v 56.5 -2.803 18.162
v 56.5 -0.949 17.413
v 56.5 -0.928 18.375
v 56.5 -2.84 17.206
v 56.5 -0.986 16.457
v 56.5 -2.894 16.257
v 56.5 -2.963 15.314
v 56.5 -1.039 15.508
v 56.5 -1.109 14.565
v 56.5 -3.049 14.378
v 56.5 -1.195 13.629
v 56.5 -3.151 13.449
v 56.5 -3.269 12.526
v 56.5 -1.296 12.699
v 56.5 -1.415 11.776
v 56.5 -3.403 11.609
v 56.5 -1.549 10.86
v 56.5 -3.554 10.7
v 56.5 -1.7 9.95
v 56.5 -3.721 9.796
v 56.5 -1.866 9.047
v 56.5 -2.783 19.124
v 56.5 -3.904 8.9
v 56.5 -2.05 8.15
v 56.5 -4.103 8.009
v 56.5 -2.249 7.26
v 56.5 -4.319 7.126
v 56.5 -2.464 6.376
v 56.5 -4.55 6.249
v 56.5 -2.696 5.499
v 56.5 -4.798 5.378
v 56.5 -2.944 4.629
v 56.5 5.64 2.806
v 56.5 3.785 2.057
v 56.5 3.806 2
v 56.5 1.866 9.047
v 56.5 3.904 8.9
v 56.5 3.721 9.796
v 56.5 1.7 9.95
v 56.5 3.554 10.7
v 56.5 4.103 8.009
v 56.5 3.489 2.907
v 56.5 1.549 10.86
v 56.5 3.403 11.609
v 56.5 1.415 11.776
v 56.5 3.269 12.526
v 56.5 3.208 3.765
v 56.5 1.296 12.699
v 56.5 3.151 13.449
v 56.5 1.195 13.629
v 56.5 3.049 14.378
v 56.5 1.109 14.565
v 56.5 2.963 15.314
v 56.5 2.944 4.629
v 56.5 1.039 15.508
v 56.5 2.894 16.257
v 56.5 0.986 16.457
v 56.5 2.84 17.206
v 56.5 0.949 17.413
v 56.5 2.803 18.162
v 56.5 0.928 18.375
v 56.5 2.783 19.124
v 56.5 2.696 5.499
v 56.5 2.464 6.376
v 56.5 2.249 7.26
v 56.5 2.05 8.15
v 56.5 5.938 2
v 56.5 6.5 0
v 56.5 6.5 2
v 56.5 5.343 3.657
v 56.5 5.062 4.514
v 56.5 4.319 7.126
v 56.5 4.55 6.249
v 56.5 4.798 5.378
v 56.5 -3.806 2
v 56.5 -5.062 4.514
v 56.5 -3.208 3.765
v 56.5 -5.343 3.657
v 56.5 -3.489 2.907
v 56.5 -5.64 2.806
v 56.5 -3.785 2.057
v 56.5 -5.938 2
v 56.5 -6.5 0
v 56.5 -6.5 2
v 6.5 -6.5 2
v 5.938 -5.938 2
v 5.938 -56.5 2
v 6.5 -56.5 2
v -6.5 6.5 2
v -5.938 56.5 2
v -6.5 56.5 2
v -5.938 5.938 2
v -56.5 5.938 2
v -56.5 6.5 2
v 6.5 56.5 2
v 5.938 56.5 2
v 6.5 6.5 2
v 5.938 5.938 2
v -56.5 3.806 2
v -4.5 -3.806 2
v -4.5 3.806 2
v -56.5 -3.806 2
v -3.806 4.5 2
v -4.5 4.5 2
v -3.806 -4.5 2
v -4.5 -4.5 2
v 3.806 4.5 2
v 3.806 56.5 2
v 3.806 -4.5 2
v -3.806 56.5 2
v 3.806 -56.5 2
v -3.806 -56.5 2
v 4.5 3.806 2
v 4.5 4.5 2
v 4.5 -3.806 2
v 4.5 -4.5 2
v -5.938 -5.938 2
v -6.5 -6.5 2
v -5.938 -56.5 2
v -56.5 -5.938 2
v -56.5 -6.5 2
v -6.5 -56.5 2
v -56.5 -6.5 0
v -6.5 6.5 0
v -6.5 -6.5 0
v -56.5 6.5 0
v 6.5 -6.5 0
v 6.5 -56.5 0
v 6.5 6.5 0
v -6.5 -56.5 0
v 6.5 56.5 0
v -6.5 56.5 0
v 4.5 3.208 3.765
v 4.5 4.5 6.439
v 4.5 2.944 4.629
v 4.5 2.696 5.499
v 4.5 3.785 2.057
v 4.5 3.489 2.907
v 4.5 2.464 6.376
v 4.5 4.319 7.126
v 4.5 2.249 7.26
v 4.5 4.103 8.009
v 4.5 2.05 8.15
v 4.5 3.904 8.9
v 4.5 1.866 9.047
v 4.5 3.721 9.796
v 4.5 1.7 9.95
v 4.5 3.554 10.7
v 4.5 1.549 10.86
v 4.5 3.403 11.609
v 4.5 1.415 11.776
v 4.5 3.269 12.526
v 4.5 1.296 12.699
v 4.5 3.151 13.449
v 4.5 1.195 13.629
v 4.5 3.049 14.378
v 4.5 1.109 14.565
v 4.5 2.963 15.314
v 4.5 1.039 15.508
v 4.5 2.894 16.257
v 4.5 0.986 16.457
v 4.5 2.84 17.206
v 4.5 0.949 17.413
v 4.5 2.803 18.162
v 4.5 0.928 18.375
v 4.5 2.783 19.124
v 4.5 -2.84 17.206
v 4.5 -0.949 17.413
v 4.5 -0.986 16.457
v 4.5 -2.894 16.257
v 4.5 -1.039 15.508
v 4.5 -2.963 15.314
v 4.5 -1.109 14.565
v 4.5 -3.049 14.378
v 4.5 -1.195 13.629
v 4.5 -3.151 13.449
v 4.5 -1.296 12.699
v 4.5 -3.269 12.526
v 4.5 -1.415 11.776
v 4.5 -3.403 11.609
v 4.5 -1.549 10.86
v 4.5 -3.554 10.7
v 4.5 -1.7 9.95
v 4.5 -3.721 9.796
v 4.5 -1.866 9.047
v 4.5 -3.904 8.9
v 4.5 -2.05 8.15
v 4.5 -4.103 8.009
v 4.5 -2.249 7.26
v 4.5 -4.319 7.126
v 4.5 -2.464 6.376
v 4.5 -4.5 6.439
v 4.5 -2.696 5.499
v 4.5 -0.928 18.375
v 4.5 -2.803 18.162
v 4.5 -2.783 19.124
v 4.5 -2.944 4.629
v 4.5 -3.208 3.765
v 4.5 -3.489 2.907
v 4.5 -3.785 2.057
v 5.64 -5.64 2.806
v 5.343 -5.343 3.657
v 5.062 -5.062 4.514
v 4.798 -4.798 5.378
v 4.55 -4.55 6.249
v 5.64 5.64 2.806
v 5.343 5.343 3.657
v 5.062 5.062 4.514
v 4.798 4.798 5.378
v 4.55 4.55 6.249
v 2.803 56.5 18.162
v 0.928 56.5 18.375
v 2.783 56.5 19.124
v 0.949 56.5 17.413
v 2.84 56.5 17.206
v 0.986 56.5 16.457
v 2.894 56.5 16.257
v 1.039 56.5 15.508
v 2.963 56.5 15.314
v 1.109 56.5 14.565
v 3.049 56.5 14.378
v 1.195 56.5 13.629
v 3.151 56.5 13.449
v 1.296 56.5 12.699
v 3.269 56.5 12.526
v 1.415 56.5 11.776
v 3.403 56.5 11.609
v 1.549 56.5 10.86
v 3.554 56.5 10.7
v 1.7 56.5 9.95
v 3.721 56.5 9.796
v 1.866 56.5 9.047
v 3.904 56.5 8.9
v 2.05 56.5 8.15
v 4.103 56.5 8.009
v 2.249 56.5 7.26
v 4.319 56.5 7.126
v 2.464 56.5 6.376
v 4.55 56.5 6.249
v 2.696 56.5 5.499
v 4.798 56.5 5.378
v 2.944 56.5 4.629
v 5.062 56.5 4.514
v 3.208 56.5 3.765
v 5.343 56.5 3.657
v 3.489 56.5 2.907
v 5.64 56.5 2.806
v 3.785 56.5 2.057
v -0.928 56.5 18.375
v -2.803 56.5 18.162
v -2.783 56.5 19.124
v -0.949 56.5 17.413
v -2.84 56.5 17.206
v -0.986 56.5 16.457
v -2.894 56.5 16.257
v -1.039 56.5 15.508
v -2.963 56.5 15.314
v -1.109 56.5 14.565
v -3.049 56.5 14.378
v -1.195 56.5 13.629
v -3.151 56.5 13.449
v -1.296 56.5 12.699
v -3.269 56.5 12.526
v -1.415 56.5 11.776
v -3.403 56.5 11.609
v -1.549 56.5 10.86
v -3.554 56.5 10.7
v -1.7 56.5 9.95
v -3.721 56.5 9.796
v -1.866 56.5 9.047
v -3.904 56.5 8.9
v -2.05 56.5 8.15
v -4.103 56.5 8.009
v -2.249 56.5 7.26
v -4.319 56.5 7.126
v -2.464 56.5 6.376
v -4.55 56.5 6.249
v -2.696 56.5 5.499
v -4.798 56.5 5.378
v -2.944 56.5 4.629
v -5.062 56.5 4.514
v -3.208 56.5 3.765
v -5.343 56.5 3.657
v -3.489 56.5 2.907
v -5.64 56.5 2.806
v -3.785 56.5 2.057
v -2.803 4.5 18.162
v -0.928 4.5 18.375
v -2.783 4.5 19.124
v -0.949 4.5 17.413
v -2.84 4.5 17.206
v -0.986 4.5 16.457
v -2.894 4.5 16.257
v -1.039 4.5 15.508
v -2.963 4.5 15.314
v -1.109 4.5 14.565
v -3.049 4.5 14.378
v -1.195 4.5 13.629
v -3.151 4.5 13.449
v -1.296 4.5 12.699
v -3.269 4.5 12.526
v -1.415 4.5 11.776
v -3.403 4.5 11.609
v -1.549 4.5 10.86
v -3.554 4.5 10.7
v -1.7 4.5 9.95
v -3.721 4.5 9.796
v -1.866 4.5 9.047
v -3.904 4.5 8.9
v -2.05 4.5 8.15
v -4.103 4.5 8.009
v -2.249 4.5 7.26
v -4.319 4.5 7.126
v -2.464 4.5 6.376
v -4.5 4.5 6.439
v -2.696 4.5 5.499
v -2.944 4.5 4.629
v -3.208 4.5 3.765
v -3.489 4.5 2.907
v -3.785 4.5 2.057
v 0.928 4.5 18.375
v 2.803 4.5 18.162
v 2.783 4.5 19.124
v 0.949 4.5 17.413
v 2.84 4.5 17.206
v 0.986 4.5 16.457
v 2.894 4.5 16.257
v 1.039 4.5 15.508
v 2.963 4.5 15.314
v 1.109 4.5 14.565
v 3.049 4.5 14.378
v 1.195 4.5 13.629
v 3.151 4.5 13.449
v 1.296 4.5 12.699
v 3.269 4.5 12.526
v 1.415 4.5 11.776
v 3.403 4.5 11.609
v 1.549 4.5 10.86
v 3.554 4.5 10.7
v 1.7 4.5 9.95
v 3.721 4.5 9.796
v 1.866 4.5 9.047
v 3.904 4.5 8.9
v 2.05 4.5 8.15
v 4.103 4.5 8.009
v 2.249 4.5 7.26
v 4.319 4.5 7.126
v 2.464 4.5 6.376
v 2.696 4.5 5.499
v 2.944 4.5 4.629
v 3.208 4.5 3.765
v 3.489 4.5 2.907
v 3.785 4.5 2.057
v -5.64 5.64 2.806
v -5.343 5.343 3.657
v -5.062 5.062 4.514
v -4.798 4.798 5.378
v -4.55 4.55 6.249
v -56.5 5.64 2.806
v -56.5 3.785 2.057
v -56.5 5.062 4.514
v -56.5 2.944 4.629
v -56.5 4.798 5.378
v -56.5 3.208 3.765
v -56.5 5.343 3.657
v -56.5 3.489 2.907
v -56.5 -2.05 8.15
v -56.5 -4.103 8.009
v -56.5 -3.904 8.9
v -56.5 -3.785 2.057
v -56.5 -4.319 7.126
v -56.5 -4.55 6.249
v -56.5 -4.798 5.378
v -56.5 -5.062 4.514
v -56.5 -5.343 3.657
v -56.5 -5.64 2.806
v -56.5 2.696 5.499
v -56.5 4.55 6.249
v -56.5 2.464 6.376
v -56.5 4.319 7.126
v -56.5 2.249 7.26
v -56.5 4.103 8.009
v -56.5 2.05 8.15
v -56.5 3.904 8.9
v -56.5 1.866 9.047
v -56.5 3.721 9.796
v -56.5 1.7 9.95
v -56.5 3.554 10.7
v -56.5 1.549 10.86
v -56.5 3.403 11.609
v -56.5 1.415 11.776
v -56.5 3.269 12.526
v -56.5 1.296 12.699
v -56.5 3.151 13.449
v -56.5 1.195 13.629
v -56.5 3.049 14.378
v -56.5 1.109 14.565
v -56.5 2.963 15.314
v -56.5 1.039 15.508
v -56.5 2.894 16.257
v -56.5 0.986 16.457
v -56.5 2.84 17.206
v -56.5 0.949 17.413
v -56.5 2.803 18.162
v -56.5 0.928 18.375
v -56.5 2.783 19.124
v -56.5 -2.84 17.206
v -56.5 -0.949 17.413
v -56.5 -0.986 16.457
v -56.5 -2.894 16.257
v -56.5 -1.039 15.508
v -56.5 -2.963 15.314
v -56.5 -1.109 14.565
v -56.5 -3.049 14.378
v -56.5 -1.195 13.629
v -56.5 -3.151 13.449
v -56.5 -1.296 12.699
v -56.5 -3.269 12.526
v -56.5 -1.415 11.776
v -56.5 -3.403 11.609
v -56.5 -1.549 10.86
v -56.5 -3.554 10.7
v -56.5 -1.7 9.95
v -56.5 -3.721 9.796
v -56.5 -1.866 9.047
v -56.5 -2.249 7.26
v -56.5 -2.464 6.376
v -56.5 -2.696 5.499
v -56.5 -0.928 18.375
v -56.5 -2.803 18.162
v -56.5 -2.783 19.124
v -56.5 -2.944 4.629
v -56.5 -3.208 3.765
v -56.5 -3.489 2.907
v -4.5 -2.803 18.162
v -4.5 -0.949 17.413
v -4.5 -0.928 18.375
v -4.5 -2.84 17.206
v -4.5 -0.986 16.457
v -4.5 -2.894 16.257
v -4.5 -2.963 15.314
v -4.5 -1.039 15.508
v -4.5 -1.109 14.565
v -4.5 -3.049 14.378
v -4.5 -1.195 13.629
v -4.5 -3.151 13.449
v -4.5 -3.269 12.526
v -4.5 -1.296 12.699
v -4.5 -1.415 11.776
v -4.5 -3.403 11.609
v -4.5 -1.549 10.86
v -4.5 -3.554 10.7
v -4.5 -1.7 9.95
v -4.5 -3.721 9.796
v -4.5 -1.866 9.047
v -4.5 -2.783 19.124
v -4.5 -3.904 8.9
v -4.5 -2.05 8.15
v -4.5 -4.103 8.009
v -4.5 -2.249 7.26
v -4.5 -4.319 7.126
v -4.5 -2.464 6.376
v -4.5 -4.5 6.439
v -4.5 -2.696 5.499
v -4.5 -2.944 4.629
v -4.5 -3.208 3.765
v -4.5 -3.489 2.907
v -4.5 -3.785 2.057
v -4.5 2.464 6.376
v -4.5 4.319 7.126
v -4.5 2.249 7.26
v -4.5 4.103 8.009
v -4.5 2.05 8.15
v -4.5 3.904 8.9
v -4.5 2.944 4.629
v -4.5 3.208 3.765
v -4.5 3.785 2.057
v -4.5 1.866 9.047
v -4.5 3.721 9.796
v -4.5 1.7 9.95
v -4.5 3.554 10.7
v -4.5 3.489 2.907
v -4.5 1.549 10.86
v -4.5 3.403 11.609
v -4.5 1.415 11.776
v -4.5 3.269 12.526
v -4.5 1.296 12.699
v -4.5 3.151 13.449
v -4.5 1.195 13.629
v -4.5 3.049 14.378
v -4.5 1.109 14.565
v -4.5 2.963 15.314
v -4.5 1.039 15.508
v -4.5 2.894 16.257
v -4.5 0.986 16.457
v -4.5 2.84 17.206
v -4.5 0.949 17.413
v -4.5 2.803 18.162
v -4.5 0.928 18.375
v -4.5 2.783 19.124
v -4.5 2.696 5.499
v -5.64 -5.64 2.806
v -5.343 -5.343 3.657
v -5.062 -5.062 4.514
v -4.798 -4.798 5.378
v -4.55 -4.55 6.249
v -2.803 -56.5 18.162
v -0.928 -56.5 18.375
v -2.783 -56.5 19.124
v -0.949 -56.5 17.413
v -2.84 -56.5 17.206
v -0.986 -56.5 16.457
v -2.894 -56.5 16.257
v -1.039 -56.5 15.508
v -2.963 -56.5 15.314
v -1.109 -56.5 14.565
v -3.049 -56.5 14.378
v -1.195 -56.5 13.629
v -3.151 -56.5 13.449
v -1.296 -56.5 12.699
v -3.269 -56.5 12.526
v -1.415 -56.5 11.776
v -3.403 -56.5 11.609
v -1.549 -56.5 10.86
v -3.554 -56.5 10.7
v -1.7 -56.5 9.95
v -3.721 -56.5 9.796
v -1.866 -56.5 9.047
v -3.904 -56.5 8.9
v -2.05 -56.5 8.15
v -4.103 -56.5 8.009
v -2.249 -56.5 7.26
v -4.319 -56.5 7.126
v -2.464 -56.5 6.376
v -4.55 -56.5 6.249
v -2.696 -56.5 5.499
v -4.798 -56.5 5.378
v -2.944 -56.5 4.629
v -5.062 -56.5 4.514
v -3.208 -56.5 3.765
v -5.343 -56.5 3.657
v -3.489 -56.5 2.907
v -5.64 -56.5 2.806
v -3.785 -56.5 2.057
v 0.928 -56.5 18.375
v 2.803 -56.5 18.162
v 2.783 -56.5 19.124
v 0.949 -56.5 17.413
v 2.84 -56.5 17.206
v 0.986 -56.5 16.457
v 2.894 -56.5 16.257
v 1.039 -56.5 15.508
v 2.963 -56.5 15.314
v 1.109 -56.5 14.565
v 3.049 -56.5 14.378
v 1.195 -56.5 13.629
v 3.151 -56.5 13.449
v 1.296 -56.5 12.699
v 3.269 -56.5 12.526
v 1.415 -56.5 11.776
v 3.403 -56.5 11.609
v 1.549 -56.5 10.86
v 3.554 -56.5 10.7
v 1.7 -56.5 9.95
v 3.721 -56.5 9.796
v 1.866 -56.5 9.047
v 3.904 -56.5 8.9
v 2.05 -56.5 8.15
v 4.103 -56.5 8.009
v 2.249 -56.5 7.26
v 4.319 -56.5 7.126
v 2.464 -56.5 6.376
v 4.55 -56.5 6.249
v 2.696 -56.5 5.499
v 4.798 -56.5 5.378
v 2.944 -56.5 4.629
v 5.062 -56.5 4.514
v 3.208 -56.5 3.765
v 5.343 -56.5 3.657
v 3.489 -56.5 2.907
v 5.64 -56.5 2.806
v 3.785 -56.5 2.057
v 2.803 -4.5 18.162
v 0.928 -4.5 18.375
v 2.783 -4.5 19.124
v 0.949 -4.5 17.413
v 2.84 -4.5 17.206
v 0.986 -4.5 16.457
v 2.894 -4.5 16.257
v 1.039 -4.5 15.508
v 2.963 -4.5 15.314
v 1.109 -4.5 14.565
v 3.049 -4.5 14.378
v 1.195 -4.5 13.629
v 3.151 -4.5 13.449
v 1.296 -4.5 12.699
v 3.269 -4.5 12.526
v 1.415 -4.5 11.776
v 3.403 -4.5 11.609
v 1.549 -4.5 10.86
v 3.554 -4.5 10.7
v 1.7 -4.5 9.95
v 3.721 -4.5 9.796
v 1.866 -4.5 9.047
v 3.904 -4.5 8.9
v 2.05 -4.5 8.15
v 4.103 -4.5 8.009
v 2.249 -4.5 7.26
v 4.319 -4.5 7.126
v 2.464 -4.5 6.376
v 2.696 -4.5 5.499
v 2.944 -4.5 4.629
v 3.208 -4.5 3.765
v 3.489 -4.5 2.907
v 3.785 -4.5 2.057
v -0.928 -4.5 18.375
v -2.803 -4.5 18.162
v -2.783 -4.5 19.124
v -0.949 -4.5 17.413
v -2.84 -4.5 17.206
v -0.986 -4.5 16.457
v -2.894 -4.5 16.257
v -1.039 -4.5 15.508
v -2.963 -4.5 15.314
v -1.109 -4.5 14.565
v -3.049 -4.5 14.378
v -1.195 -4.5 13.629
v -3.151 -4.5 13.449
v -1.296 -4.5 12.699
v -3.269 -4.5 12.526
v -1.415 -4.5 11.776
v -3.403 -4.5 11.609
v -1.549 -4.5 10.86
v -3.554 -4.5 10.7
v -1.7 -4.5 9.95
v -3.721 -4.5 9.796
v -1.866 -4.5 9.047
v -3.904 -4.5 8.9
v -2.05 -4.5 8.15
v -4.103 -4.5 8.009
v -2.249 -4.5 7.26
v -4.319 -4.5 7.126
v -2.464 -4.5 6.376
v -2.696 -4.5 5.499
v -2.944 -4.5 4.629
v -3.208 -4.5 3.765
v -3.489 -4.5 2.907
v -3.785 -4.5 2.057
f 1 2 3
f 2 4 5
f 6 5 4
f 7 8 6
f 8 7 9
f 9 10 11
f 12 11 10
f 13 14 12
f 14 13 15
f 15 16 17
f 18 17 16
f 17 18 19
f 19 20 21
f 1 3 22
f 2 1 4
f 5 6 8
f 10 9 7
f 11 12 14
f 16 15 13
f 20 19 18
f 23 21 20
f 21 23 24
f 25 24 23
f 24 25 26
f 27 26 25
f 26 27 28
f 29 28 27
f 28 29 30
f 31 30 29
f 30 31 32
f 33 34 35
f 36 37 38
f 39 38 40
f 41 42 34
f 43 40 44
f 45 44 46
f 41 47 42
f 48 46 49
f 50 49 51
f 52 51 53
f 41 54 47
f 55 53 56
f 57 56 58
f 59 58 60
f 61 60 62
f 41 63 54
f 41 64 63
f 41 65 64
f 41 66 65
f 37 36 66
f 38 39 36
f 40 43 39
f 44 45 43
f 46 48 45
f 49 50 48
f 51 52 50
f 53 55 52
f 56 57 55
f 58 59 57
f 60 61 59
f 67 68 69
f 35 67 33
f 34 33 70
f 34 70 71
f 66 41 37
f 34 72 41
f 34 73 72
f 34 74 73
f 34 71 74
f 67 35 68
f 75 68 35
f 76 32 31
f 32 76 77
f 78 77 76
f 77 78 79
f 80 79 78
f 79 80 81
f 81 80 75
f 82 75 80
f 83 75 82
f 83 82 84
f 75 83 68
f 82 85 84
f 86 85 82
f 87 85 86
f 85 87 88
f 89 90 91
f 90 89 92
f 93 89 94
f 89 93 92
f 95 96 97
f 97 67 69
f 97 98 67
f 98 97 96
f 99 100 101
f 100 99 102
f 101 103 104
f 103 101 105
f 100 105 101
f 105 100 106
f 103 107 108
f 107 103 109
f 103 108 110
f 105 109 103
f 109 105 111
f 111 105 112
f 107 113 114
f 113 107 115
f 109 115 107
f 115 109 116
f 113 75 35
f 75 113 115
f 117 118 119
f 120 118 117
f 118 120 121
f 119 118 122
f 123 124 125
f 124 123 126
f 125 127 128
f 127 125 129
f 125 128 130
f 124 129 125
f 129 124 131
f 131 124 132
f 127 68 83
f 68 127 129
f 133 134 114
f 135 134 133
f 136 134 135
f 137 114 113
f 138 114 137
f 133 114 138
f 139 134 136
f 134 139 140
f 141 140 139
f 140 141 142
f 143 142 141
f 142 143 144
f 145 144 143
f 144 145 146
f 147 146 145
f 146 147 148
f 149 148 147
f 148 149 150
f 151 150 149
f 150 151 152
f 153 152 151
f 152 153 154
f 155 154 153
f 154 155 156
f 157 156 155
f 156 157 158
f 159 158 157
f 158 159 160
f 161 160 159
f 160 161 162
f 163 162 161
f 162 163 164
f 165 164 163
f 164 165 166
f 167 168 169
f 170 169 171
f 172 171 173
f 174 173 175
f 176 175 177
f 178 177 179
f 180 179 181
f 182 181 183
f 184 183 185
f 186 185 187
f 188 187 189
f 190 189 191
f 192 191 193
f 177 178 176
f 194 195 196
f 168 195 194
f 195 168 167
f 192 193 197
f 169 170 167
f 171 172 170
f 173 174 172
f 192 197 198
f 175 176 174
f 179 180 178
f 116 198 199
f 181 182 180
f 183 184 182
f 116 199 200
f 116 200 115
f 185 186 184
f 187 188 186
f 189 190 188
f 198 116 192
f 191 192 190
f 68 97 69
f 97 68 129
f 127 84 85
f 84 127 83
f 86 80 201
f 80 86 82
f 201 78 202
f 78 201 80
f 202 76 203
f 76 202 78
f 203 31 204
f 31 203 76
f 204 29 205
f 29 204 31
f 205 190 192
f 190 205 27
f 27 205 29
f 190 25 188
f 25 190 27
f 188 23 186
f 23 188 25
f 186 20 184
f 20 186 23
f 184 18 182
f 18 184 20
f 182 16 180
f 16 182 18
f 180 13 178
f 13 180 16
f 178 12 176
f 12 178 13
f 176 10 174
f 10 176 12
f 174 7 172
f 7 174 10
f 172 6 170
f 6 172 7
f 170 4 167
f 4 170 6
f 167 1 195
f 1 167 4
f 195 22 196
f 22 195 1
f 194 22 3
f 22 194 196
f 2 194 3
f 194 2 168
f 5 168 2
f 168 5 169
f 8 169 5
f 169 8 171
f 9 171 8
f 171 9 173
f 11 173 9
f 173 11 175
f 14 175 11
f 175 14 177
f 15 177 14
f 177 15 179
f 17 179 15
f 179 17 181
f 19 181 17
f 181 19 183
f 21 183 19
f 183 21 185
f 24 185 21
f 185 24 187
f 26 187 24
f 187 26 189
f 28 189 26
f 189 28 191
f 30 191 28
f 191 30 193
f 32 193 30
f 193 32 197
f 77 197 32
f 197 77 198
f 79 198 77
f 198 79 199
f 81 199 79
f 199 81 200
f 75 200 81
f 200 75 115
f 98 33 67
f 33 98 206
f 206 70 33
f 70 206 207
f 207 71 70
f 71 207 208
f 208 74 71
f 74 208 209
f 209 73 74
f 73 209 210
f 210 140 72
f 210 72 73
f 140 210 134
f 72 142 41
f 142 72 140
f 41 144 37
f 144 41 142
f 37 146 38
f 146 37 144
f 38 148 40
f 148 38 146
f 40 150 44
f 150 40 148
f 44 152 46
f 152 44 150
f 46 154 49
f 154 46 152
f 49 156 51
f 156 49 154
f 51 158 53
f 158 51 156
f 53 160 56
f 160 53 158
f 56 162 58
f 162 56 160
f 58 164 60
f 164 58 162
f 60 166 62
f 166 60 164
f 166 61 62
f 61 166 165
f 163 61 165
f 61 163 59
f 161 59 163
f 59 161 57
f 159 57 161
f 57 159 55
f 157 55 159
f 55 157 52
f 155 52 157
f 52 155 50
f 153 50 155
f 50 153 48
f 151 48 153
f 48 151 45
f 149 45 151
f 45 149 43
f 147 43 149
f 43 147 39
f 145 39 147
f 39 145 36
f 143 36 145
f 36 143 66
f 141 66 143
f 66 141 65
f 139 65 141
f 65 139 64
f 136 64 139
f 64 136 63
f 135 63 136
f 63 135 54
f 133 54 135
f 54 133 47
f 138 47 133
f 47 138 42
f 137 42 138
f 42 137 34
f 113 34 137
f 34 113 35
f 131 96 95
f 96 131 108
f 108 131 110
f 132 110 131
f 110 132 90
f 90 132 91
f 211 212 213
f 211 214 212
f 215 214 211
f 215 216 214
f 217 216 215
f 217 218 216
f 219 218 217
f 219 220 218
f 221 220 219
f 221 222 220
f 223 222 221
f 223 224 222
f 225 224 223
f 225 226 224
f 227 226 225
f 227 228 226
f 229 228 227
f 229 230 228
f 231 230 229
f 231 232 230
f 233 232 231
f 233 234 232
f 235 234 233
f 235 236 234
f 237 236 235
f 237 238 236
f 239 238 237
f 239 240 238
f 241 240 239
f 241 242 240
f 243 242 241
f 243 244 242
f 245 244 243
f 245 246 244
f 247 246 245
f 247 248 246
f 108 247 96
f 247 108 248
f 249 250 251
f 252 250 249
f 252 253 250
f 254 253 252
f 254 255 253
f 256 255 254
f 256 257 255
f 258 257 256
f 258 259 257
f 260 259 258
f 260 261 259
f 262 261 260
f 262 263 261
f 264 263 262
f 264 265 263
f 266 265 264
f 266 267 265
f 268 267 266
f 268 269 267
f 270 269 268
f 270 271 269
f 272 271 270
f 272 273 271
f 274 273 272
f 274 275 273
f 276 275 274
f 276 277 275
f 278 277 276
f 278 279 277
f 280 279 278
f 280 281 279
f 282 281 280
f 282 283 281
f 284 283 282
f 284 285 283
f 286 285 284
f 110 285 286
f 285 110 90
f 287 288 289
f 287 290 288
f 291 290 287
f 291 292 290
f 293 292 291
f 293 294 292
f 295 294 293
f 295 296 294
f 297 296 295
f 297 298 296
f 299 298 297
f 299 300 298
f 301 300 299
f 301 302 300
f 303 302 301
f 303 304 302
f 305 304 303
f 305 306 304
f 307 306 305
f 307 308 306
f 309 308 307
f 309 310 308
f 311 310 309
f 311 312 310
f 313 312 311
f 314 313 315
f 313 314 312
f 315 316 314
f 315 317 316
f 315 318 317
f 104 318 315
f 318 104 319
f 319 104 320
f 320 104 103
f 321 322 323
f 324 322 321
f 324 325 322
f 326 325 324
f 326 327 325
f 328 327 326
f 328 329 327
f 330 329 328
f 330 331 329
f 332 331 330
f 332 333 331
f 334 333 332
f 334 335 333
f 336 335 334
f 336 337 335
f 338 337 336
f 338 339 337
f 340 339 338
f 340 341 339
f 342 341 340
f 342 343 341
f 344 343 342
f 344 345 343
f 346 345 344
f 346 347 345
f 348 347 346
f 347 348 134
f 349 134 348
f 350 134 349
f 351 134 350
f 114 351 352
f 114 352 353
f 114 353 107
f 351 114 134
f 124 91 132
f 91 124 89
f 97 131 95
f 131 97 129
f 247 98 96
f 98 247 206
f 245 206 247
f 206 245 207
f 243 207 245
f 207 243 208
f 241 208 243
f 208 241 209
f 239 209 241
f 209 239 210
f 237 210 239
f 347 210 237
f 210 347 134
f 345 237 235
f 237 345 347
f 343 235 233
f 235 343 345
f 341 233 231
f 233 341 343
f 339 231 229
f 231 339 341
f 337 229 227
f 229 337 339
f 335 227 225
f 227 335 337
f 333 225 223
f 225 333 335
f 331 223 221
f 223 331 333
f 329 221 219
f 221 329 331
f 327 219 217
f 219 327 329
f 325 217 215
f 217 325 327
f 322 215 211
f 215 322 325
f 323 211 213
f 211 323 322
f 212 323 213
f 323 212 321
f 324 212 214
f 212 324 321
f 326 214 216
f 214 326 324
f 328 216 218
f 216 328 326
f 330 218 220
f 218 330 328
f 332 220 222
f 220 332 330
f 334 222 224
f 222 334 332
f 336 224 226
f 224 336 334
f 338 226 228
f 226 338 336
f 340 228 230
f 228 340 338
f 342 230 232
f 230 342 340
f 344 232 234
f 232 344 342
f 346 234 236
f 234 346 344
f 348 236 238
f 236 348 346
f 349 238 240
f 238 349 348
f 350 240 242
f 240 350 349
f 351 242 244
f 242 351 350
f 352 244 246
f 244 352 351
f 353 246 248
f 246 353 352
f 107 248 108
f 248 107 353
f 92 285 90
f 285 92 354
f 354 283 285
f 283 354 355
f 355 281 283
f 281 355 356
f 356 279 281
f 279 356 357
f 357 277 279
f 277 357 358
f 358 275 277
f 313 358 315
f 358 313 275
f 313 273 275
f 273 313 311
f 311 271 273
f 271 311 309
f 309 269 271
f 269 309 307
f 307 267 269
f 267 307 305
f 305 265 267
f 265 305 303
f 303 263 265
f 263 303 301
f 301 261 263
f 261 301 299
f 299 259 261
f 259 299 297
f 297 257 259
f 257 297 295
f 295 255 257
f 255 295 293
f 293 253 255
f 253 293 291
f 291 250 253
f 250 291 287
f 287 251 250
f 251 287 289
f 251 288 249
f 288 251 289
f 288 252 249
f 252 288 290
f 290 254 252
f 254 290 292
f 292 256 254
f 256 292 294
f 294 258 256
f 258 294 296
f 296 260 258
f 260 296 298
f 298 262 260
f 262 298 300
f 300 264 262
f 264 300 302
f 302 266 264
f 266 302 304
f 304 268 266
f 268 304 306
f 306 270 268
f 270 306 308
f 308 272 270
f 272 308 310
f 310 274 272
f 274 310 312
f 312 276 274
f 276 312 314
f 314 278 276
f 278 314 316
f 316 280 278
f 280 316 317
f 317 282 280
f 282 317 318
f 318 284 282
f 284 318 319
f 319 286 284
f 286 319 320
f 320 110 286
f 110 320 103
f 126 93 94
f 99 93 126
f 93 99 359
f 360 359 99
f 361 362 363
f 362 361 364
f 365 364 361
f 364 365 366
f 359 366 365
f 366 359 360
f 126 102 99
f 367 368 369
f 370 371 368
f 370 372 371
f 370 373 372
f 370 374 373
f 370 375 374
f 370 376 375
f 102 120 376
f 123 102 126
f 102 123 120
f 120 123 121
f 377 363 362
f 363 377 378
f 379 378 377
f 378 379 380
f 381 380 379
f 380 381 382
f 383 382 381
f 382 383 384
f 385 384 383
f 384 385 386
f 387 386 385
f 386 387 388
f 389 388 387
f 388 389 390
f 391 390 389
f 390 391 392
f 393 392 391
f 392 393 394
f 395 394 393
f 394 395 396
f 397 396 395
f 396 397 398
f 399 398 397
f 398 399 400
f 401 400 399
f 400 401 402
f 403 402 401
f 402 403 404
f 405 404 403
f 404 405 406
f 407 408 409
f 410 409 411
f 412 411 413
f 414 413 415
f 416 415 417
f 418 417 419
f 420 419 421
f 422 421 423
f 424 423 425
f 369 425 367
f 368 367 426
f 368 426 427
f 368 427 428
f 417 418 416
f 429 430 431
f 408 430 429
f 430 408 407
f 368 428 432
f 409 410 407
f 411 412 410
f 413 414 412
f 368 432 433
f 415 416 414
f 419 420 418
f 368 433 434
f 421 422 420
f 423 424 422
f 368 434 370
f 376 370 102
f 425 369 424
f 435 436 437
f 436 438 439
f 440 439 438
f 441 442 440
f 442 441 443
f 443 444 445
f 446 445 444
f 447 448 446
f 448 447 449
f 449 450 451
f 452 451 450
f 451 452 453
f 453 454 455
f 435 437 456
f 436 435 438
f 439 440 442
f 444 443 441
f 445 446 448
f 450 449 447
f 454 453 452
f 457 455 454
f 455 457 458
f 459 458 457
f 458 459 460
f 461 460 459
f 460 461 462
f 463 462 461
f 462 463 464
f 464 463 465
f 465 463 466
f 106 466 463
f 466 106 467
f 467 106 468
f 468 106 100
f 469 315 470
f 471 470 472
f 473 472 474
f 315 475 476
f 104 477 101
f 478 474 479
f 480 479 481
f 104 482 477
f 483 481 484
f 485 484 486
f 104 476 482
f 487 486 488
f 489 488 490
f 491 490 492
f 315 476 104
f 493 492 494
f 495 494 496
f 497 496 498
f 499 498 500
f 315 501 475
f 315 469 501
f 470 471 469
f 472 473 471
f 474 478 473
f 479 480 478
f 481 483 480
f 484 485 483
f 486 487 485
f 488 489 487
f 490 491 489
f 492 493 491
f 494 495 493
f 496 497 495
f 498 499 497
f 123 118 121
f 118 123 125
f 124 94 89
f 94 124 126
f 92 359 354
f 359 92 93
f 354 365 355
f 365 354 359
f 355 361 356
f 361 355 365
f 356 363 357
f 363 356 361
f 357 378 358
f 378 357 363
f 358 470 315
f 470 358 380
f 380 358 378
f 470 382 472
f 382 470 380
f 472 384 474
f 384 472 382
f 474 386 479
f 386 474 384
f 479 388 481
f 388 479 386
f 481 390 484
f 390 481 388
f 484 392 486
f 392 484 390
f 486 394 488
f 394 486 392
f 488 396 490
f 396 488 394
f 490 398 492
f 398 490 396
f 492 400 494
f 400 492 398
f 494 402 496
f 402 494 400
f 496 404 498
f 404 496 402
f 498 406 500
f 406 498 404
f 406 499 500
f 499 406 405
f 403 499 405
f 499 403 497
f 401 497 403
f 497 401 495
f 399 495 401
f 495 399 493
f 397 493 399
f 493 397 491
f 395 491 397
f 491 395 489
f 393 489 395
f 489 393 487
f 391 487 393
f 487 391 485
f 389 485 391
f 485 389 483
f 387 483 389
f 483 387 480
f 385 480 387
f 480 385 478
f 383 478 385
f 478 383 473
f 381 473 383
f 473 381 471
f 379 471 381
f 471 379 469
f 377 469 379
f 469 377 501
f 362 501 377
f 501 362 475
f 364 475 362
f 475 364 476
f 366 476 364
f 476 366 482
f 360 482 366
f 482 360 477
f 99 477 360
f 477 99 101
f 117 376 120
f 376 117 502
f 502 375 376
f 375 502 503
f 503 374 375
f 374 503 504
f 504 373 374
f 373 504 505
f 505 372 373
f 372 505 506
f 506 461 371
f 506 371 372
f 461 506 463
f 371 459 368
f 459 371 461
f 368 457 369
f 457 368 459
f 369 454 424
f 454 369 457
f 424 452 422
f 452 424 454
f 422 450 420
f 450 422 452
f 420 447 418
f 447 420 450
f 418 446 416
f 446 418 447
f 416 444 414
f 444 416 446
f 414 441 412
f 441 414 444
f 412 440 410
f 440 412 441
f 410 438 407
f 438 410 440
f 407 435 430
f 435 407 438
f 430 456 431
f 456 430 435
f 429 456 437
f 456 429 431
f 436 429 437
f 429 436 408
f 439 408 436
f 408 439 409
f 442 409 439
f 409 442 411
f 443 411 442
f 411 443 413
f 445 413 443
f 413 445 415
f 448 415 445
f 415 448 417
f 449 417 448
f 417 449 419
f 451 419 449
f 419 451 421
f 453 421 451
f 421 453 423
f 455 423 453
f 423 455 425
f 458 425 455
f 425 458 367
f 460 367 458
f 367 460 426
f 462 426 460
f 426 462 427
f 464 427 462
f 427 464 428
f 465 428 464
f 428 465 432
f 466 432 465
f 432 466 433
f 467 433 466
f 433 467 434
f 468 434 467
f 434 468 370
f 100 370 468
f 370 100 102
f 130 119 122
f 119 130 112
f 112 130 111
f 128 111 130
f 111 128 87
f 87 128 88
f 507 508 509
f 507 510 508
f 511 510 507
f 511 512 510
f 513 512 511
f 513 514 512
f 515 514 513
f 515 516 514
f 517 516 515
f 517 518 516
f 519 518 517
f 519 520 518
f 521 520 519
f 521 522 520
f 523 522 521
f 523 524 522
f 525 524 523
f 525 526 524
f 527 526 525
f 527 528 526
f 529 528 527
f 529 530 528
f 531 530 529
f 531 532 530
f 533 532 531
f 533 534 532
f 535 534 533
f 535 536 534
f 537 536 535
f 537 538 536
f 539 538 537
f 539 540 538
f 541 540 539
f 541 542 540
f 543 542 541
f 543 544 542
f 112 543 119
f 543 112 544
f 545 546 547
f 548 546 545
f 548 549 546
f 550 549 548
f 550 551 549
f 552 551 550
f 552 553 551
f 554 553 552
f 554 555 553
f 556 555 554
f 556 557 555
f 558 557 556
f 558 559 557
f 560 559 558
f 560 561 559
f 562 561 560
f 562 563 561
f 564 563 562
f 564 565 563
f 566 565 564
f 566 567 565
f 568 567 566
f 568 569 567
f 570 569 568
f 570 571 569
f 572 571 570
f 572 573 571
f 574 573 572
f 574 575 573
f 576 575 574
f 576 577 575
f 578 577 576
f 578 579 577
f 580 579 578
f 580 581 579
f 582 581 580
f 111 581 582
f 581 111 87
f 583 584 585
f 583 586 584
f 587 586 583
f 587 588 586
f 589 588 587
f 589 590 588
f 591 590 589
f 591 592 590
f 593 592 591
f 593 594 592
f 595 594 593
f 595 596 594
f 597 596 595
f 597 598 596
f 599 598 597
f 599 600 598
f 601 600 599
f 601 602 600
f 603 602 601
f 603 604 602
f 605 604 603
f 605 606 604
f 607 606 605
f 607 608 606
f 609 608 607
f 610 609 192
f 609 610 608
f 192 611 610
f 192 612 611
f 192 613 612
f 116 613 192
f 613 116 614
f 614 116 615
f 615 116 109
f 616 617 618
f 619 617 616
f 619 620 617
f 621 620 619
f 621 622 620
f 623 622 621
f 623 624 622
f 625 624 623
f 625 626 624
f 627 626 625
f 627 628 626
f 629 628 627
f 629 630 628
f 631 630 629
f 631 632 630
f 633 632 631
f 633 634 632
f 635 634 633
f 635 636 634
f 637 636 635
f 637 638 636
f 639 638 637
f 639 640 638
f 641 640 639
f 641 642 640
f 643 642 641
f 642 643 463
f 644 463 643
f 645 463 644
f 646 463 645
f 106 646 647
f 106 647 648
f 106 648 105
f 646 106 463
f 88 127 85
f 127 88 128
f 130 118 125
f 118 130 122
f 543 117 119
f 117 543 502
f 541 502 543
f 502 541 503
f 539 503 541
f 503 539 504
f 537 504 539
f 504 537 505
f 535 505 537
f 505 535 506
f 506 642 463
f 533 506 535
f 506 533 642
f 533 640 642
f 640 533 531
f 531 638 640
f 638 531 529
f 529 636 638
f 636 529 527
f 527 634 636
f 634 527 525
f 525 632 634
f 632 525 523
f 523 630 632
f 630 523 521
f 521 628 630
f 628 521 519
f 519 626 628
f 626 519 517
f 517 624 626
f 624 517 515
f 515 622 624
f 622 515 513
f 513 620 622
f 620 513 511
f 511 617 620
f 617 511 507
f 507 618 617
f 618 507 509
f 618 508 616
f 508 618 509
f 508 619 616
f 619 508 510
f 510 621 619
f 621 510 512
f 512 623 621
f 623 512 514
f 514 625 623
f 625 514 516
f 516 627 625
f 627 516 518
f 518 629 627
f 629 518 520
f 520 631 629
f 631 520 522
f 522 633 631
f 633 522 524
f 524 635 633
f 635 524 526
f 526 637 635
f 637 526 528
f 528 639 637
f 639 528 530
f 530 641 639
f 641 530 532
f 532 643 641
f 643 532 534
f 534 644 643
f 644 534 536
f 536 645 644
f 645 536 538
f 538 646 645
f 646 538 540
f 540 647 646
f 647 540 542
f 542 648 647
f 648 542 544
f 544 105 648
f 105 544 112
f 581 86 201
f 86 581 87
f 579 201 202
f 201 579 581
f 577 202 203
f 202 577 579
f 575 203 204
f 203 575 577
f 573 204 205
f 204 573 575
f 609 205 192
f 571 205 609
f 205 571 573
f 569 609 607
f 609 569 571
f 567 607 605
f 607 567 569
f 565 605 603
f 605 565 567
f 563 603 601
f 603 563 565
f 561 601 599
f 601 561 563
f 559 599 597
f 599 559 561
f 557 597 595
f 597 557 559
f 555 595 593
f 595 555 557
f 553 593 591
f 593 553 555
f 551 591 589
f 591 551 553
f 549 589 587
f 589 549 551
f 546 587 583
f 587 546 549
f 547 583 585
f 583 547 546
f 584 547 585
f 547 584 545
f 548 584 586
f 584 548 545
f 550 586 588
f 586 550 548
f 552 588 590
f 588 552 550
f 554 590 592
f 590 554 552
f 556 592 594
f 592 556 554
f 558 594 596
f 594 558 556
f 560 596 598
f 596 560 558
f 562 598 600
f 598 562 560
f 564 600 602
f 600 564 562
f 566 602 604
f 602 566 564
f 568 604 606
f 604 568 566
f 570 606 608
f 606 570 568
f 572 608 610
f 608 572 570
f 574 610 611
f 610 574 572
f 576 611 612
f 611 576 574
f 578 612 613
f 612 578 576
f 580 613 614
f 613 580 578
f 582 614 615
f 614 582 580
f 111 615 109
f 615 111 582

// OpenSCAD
use <common.scad>

// Крестовина с гибкими стенками (4 выхода)
// Выходы: право (0), перед (1), лево (2), назад (3)
// Гибкие стенки для картона

union() {
    // Основание центра
    draw_center_base(with_dowel = false);

    // Без стенок центра - все стороны открыты

    // Рукава на всех четырех сторонах с гибкими стенками
    place_sleeve(0, with_dowel = false, wall_type = "flexible");  // право
    place_sleeve(1, with_dowel = false, wall_type = "flexible");  // перед
    place_sleeve(2, with_dowel = false, wall_type = "flexible");  // лево
    place_sleeve(3, with_dowel = false, wall_type = "flexible");  // назад
}
